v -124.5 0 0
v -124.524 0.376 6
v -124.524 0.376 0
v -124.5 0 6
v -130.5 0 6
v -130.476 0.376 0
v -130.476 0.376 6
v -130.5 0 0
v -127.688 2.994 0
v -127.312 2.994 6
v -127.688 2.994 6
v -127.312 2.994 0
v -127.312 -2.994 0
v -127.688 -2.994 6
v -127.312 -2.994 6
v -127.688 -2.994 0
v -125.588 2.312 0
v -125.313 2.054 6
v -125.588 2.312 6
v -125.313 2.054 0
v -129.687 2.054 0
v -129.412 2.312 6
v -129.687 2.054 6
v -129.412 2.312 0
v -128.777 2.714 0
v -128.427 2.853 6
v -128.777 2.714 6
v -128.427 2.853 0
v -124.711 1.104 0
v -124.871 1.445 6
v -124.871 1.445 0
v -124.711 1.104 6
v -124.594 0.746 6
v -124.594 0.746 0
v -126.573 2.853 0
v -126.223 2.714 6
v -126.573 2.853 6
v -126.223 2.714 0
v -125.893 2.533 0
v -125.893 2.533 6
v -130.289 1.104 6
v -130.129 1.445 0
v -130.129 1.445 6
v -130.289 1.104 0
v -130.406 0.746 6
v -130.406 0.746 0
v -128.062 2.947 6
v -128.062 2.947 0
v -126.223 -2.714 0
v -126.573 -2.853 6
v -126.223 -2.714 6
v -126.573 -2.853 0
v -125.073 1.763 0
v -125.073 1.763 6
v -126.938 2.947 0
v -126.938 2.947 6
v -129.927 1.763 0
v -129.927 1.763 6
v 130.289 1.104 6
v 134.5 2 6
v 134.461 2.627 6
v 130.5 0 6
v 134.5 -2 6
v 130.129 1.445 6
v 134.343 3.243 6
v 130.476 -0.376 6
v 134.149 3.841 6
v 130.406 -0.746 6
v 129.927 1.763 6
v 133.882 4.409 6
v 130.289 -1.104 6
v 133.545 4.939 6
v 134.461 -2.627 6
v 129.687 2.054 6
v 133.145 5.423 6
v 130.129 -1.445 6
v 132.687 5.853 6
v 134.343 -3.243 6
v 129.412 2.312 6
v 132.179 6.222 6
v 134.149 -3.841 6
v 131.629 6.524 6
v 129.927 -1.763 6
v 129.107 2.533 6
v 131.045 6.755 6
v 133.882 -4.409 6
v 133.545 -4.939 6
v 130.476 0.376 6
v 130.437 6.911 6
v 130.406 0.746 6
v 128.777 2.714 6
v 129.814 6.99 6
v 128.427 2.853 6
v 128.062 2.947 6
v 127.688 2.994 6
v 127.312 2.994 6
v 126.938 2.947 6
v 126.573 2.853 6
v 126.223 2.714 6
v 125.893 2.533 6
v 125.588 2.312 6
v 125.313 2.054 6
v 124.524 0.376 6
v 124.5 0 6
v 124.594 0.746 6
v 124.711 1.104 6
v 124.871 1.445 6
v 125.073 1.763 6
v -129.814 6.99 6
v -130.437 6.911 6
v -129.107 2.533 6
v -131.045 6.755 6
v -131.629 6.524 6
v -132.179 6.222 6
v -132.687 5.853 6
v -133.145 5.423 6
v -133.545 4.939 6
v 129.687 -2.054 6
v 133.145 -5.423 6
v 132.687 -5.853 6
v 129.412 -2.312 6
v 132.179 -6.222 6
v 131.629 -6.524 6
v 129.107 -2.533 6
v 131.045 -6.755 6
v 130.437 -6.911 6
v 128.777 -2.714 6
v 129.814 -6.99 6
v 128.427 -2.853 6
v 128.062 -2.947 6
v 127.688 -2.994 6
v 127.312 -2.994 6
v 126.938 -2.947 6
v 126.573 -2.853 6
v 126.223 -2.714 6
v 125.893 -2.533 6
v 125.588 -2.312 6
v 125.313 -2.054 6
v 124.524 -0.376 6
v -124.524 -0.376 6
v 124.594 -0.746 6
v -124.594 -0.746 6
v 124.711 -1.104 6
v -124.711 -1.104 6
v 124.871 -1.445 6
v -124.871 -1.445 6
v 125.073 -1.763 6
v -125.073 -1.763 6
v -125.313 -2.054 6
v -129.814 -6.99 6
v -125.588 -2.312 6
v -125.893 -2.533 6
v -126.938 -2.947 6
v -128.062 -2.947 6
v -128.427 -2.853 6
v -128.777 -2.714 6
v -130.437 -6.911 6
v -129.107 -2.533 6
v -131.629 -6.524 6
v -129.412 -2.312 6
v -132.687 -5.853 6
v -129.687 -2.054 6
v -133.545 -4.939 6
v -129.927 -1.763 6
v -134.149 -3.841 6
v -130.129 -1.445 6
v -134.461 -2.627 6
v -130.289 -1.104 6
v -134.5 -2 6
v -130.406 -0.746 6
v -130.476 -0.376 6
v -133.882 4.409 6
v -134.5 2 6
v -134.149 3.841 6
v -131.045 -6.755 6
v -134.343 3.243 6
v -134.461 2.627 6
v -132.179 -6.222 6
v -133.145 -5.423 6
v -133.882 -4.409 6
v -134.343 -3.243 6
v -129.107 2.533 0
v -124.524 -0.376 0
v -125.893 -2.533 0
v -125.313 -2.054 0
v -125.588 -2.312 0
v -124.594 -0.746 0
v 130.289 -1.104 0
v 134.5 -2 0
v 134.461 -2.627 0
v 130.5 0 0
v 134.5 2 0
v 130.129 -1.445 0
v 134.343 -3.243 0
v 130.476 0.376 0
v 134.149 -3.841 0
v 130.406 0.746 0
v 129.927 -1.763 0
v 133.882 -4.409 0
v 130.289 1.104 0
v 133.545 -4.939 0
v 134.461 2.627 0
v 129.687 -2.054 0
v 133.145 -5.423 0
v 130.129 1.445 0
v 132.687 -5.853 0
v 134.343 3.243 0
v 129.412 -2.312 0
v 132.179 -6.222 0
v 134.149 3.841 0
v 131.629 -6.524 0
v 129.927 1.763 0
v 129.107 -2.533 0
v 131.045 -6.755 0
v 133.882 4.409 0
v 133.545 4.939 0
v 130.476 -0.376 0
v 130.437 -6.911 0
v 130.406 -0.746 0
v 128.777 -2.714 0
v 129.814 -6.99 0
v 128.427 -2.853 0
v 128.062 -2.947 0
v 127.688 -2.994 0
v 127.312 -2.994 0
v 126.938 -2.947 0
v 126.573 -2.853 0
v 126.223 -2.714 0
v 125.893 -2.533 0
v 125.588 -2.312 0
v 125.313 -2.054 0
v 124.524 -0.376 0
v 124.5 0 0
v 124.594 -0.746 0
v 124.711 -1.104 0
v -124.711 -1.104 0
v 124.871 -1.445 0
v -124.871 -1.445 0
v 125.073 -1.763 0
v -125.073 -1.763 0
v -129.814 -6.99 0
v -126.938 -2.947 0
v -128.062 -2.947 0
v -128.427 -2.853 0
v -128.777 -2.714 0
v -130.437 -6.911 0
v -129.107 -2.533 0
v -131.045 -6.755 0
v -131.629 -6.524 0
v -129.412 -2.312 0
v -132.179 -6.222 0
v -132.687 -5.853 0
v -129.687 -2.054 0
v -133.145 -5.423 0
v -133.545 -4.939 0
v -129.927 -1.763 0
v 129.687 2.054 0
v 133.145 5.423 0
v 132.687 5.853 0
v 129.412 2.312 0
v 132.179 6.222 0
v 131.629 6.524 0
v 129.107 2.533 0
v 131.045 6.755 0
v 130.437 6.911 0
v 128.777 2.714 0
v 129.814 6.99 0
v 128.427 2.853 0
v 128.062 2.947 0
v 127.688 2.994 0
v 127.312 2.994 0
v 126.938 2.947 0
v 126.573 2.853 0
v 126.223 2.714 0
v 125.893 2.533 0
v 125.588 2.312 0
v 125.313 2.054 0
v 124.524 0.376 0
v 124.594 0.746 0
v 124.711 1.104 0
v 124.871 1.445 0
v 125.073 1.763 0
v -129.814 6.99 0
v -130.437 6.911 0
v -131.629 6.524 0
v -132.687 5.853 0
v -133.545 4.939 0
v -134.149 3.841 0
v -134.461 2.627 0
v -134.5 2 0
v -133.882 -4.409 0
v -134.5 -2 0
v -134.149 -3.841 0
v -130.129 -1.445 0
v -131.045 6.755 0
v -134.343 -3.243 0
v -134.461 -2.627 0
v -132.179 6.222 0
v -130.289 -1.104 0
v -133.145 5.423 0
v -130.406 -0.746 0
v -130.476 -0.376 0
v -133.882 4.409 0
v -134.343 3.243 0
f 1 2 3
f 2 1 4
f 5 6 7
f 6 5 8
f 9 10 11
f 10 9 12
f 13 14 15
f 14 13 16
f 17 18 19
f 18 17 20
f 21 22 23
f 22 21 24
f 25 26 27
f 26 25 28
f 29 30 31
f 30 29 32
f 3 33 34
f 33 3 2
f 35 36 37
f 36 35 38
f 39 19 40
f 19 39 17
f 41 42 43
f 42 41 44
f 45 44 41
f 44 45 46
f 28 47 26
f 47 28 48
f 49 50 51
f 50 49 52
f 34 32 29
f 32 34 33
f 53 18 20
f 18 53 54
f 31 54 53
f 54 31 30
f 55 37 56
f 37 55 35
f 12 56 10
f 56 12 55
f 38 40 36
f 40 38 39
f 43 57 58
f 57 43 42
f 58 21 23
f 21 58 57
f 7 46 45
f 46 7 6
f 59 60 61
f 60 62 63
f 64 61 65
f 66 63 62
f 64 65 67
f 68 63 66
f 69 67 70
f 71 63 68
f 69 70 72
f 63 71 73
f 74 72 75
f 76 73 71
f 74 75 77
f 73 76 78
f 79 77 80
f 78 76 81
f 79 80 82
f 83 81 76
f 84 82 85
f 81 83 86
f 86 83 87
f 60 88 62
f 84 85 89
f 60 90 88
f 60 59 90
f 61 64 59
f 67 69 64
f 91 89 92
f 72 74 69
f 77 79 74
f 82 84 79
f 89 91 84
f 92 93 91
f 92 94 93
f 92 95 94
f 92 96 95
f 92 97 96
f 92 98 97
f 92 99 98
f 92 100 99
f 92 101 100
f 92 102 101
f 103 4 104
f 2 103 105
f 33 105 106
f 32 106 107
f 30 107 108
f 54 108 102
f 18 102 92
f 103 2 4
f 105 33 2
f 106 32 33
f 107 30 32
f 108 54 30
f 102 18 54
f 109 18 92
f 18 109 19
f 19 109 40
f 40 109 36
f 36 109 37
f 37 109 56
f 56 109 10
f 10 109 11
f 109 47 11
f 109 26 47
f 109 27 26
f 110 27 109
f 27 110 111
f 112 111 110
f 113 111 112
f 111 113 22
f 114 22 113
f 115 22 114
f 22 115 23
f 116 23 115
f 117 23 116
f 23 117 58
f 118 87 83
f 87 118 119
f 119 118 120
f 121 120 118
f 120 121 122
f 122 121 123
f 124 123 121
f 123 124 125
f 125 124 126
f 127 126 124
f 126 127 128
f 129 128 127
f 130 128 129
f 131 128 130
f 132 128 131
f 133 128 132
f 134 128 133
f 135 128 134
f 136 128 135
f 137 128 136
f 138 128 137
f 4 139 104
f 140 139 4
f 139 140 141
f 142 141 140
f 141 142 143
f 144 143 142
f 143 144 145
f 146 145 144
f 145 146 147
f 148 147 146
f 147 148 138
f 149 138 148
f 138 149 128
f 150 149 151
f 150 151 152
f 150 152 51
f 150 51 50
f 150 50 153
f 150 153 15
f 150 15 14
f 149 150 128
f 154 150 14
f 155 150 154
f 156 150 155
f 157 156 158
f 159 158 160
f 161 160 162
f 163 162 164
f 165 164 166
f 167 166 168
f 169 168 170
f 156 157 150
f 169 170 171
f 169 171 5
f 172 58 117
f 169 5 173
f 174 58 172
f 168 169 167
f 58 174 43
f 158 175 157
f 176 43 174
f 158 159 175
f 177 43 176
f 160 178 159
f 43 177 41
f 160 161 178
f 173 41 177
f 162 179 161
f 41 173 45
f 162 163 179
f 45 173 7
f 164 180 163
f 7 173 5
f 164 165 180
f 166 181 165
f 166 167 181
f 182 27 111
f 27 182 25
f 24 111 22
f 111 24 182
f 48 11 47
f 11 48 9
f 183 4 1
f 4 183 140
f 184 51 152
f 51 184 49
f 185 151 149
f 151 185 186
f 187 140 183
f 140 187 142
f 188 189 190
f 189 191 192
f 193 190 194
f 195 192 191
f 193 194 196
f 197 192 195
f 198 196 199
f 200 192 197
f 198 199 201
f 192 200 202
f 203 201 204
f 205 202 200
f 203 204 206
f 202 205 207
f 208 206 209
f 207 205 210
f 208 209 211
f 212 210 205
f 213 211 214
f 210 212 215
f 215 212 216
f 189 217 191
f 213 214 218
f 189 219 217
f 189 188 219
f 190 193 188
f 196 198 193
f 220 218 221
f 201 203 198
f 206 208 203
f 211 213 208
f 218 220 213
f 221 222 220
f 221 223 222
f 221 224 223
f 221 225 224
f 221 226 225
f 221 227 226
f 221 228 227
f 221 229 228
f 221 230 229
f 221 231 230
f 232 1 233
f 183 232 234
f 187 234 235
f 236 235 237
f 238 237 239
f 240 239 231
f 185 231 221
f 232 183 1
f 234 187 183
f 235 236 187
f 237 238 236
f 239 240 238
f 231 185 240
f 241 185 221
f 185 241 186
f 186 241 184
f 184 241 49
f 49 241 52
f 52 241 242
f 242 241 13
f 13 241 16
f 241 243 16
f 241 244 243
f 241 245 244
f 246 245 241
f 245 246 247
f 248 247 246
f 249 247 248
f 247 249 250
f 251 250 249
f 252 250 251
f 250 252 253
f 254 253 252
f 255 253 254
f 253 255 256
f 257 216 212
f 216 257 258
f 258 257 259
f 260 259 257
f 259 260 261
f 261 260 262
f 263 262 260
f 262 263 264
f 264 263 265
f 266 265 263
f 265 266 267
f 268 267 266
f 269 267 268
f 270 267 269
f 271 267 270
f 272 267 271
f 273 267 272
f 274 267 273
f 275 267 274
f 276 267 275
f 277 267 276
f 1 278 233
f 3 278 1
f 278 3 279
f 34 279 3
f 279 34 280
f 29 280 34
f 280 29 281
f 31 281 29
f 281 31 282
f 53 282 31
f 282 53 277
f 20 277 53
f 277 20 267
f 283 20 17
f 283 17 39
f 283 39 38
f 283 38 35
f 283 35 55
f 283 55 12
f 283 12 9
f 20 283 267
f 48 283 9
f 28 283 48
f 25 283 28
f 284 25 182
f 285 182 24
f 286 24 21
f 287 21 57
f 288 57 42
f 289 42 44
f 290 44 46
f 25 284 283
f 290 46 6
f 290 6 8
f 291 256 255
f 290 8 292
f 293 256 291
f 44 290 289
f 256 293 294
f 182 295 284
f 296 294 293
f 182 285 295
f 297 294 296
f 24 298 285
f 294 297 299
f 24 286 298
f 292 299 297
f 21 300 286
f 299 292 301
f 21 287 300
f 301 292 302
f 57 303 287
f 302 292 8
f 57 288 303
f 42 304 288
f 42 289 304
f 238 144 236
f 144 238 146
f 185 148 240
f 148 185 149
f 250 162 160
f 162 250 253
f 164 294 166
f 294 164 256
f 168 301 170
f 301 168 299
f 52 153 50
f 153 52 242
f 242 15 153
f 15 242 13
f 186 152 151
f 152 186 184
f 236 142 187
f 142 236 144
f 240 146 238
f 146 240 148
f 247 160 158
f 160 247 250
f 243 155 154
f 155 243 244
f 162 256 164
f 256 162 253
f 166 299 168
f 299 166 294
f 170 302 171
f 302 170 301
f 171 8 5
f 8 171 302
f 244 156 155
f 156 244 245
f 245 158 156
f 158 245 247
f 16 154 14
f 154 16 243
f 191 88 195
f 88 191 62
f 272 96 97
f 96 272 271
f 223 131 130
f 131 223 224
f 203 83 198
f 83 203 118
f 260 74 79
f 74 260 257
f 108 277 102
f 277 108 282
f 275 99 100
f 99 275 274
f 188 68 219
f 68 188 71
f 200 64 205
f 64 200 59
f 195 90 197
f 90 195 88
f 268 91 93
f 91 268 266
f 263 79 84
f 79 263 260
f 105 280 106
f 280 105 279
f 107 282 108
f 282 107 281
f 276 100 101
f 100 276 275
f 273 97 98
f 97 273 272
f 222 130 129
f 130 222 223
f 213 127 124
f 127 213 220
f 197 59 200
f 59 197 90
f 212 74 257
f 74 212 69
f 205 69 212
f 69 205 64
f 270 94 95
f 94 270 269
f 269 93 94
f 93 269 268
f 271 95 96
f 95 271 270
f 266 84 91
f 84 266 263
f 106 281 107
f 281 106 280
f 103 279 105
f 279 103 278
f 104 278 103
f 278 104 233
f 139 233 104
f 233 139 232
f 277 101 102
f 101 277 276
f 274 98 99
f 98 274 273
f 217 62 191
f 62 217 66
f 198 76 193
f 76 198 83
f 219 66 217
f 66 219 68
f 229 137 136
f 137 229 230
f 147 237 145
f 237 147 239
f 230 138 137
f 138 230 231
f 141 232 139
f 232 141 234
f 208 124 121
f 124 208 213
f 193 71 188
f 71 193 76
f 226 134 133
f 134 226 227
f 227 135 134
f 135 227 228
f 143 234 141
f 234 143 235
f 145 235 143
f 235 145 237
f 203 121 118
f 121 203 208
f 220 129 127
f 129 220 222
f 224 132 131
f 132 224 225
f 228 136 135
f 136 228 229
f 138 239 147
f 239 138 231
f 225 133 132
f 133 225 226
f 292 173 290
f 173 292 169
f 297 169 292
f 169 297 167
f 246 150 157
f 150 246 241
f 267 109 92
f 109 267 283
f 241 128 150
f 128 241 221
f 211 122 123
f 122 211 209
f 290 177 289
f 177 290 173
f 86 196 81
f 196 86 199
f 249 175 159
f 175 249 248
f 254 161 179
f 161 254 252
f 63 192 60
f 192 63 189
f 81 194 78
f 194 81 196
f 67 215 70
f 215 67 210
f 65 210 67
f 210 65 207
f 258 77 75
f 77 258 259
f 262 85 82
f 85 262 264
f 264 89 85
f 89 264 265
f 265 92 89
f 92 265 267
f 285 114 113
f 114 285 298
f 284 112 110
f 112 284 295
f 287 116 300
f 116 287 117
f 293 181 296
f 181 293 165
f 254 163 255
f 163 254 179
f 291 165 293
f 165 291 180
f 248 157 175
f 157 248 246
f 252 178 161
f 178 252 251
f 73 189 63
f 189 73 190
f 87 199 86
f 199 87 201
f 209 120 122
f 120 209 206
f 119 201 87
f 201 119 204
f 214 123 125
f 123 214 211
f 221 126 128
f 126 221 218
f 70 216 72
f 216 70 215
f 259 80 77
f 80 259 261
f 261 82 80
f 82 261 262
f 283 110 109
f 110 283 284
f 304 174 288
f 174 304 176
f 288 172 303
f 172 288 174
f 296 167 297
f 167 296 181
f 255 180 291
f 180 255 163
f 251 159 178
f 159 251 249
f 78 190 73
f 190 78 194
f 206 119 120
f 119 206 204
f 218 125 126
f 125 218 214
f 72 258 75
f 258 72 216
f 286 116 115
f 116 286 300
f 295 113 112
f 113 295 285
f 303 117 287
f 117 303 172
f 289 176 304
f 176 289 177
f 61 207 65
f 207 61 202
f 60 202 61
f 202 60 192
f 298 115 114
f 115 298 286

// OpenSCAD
$fn = 50;


difference() {
	union() {
		hull() {
			translate(v = [-129.5000000000, 2.0000000000, 0]) {
				cylinder(h = 6, r = 5);
			}
			translate(v = [129.5000000000, 2.0000000000, 0]) {
				cylinder(h = 6, r = 5);
			}
			translate(v = [-129.5000000000, -2.0000000000, 0]) {
				cylinder(h = 6, r = 5);
			}
			translate(v = [129.5000000000, -2.0000000000, 0]) {
				cylinder(h = 6, r = 5);
			}
		}
	}
	union() {
		translate(v = [-127.5000000000, 0.0000000000, 0]) {
			cylinder(h = 6, r = 3.0000000000);
		}
		translate(v = [127.5000000000, 0.0000000000, 0]) {
			cylinder(h = 6, r = 3.0000000000);
		}
		translate(v = [-127.5000000000, 0.0000000000, 0]) {
			cylinder(h = 6, r = 1.5000000000);
		}
		translate(v = [127.5000000000, 0.0000000000, 0]) {
			cylinder(h = 6, r = 1.5000000000);
		}
		translate(v = [-127.5000000000, 0.0000000000, 0]) {
			cylinder(h = 6, r = 1.5000000000);
		}
		translate(v = [127.5000000000, 0.0000000000, 0]) {
			cylinder(h = 6, r = 1.5000000000);
		}
		translate(v = [-127.5000000000, 0.0000000000, 0]) {
			cylinder(h = 6, r = 1.5000000000);
		}
		translate(v = [127.5000000000, 0.0000000000, 0]) {
			cylinder(h = 6, r = 1.5000000000);
		}
	}
}
